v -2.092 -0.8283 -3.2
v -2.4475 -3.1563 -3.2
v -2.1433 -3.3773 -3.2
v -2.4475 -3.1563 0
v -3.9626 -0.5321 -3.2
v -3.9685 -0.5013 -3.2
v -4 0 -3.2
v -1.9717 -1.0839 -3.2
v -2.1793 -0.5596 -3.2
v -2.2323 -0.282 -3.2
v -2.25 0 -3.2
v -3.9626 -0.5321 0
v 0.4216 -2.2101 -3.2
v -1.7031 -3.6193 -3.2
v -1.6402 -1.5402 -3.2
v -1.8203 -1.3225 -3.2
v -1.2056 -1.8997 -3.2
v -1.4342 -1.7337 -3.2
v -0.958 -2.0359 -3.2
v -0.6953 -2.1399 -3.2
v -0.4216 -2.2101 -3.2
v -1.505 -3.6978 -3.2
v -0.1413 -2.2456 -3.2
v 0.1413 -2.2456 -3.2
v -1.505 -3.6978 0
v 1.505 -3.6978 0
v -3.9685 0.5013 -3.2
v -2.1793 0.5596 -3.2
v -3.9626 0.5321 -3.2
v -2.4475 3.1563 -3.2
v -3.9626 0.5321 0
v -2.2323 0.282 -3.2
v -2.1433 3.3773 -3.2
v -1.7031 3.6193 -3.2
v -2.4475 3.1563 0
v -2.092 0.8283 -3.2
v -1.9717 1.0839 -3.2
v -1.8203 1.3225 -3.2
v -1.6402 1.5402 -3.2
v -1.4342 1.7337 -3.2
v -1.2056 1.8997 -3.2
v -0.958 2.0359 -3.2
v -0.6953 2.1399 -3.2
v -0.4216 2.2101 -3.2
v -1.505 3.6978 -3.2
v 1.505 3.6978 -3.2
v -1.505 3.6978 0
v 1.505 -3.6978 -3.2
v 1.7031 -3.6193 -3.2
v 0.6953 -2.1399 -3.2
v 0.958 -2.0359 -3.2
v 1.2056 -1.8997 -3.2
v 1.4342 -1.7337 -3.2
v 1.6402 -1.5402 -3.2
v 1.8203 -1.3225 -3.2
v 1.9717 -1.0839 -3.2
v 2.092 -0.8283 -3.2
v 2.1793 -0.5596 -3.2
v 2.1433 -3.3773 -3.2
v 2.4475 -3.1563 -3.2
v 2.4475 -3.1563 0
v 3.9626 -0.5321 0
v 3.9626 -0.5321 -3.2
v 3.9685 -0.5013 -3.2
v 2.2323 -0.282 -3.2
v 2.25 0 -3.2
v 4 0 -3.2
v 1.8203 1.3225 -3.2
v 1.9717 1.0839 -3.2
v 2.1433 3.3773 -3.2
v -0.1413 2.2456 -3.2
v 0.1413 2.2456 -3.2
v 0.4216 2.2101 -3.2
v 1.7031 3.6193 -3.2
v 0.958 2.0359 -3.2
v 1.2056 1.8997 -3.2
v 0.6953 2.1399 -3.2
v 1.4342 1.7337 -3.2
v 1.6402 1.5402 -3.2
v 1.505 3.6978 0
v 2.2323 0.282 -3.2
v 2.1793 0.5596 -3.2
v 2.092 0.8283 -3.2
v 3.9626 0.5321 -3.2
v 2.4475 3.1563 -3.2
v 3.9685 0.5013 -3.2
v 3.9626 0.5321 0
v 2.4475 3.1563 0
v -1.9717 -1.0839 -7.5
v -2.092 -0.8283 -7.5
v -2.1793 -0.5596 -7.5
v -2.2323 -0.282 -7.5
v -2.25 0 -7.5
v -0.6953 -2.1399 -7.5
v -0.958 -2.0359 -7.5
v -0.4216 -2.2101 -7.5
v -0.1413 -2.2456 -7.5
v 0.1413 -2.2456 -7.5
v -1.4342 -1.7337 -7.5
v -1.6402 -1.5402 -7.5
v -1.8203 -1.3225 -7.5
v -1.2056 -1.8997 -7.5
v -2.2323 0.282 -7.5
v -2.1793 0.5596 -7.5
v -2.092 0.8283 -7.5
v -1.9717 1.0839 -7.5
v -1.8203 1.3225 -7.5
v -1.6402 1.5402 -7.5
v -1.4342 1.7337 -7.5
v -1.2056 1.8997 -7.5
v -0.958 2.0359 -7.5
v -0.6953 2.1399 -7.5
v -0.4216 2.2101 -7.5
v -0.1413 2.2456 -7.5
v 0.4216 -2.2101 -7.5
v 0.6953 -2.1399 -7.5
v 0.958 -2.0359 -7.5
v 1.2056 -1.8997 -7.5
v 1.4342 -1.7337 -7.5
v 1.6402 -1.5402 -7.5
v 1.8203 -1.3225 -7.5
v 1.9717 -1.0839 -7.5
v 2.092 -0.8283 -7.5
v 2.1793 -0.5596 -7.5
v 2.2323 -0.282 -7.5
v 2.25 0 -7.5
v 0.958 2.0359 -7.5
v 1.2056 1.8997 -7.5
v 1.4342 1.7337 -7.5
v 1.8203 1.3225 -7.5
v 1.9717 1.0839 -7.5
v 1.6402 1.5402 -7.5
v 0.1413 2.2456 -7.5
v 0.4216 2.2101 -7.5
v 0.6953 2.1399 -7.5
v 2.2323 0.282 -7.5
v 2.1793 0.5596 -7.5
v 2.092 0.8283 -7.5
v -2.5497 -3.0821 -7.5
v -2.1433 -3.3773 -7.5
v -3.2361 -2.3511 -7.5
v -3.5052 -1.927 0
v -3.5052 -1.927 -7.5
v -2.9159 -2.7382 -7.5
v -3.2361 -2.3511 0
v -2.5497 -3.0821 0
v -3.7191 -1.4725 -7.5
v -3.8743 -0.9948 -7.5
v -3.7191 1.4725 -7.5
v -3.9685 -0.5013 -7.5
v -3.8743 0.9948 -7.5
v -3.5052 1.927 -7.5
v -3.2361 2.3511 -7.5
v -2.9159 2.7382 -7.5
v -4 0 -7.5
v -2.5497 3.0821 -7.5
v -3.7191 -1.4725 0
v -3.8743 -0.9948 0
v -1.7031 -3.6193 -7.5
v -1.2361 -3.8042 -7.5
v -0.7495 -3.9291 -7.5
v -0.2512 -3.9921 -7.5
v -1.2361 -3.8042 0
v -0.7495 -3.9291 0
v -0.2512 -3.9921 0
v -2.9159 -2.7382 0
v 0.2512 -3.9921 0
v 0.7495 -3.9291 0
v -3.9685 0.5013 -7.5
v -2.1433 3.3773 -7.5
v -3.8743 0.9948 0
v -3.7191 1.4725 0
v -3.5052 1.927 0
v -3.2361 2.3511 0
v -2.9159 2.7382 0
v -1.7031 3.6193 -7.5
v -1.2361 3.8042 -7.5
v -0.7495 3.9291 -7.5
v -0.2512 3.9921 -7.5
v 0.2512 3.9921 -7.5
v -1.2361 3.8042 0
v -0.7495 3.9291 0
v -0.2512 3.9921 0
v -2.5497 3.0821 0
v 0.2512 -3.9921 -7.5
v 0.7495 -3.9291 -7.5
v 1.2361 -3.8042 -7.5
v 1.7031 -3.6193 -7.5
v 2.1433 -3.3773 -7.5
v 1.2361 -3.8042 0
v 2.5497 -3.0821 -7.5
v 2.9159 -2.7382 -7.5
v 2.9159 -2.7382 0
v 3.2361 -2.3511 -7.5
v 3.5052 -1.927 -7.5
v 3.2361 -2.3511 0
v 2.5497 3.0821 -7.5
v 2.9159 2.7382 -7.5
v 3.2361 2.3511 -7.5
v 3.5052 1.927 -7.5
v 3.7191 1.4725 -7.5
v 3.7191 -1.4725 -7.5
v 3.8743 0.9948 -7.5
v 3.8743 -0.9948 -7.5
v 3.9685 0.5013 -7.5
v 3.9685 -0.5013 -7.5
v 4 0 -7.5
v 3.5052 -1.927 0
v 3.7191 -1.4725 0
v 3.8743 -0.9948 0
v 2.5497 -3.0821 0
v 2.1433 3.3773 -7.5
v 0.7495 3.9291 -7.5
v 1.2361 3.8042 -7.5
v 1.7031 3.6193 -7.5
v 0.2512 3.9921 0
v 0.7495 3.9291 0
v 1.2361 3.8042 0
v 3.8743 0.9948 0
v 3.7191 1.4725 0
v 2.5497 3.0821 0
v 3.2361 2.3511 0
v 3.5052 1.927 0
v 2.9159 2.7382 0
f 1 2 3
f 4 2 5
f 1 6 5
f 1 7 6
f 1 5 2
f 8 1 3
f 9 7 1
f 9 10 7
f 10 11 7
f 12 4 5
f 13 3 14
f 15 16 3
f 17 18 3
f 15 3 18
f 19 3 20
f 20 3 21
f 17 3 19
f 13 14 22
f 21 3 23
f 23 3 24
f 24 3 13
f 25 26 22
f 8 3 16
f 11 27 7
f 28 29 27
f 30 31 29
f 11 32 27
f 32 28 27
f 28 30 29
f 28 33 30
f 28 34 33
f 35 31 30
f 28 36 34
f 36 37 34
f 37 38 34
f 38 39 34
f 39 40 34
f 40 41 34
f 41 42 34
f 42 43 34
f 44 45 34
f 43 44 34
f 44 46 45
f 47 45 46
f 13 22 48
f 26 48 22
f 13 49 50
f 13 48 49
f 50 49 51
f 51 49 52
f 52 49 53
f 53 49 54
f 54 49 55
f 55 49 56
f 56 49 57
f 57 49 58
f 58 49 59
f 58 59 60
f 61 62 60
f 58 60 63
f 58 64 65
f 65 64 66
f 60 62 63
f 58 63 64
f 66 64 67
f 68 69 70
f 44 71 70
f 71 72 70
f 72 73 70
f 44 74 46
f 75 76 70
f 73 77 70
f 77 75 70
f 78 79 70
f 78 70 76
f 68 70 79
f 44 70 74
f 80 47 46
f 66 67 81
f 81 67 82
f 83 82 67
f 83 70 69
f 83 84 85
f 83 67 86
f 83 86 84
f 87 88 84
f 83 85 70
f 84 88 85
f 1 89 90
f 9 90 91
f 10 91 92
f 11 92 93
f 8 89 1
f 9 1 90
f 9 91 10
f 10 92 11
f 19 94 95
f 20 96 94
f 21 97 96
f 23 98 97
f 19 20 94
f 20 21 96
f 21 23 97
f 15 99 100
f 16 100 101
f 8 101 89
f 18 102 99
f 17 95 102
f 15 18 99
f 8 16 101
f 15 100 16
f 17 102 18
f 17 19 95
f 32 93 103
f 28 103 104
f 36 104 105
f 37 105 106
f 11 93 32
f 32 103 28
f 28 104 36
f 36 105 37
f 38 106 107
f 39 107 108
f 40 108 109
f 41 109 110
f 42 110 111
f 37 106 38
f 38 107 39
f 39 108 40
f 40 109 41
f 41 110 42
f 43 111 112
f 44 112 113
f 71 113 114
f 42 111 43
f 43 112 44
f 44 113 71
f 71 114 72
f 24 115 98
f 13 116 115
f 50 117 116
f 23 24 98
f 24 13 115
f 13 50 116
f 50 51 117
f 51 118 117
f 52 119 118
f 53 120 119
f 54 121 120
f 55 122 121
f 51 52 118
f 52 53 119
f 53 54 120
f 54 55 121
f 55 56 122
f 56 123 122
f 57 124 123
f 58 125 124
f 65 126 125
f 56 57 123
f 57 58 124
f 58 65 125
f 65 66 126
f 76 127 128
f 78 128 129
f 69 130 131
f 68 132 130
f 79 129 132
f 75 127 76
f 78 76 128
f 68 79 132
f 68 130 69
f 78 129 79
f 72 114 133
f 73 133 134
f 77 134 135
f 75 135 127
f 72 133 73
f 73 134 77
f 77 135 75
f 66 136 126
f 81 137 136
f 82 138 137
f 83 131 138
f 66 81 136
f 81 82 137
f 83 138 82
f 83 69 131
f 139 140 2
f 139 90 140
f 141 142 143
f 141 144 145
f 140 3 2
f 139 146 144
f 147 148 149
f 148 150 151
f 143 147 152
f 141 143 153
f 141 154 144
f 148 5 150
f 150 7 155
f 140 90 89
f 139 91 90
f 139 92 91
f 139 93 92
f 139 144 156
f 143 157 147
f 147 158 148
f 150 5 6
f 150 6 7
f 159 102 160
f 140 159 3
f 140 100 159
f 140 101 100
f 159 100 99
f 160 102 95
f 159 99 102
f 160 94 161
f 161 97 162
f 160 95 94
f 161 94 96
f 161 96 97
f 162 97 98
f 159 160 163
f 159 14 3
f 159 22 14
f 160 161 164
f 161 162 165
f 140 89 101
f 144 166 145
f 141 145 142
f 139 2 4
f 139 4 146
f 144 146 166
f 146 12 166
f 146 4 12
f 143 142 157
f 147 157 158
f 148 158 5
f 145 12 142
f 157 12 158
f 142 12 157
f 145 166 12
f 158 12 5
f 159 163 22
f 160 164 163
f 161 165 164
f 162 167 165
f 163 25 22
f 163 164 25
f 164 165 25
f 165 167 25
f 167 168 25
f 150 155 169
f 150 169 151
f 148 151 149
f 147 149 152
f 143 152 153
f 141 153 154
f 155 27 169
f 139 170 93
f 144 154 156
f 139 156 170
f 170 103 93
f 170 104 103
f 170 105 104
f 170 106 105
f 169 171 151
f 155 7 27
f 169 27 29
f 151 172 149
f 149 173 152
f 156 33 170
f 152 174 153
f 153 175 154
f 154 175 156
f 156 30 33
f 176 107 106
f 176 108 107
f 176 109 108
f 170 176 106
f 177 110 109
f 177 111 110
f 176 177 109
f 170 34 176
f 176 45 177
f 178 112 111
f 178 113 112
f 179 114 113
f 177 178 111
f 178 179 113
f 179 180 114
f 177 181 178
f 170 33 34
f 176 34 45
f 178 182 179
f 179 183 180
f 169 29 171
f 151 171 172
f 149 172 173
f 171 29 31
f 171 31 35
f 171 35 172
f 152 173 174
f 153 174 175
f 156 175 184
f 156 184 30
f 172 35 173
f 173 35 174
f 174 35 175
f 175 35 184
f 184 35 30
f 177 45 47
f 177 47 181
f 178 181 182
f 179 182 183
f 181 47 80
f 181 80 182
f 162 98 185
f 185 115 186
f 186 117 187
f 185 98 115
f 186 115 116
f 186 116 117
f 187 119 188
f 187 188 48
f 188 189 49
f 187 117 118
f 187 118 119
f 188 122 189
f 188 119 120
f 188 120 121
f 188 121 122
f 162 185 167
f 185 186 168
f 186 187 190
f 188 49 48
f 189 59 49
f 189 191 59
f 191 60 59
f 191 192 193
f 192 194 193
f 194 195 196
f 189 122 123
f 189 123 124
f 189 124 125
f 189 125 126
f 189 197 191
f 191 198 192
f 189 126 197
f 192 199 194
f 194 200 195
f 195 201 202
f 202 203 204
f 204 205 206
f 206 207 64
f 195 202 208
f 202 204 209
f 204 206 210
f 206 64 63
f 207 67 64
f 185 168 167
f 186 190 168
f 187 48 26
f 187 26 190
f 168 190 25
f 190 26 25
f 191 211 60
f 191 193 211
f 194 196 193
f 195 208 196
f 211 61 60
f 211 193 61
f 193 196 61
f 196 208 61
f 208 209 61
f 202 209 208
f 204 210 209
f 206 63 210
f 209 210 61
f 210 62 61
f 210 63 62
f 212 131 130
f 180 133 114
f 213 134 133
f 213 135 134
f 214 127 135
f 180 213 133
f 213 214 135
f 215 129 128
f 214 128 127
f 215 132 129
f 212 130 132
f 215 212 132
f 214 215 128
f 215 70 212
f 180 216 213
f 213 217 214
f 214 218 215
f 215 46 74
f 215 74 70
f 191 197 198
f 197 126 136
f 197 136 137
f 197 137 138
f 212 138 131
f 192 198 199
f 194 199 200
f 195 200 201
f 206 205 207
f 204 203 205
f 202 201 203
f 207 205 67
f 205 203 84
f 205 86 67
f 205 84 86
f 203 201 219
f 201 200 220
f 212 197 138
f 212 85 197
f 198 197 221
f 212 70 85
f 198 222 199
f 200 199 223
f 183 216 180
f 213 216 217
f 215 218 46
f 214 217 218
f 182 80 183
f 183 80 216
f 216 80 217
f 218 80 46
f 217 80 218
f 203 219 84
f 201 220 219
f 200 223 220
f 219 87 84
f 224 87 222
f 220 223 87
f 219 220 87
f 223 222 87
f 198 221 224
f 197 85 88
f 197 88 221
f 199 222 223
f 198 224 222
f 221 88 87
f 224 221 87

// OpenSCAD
$fn = 50;

difference() {
	union() {
		translate(v = [0, 0, -7.5]) {
			cylinder(h = 7.5, r = 4.0);
		}
	}
	union() {
		translate(v = [0, 0, 0]) {
			rotate(a = [0, 0, 0]) {
				difference() {
					union() {
						translate(v = [0, 0, -3.2]) {
							linear_extrude(height = 3.2) {
								polygon(points = [[4.2698, 0.0], [2.1349000000000005, 3.697755269078796], [-2.134899999999999, 3.6977552690787965], [-4.2698, 5.228996902999369e-16], [-2.134900000000002, -3.6977552690787956], [2.1348999999999974, -3.697755269078798]]);
							}
						}
					}
					union();
				}
			}
		}
		#translate(v = [0, 0, -100.0]) {
			cylinder(h = 200, r = 2.25);
		}
	}
}
